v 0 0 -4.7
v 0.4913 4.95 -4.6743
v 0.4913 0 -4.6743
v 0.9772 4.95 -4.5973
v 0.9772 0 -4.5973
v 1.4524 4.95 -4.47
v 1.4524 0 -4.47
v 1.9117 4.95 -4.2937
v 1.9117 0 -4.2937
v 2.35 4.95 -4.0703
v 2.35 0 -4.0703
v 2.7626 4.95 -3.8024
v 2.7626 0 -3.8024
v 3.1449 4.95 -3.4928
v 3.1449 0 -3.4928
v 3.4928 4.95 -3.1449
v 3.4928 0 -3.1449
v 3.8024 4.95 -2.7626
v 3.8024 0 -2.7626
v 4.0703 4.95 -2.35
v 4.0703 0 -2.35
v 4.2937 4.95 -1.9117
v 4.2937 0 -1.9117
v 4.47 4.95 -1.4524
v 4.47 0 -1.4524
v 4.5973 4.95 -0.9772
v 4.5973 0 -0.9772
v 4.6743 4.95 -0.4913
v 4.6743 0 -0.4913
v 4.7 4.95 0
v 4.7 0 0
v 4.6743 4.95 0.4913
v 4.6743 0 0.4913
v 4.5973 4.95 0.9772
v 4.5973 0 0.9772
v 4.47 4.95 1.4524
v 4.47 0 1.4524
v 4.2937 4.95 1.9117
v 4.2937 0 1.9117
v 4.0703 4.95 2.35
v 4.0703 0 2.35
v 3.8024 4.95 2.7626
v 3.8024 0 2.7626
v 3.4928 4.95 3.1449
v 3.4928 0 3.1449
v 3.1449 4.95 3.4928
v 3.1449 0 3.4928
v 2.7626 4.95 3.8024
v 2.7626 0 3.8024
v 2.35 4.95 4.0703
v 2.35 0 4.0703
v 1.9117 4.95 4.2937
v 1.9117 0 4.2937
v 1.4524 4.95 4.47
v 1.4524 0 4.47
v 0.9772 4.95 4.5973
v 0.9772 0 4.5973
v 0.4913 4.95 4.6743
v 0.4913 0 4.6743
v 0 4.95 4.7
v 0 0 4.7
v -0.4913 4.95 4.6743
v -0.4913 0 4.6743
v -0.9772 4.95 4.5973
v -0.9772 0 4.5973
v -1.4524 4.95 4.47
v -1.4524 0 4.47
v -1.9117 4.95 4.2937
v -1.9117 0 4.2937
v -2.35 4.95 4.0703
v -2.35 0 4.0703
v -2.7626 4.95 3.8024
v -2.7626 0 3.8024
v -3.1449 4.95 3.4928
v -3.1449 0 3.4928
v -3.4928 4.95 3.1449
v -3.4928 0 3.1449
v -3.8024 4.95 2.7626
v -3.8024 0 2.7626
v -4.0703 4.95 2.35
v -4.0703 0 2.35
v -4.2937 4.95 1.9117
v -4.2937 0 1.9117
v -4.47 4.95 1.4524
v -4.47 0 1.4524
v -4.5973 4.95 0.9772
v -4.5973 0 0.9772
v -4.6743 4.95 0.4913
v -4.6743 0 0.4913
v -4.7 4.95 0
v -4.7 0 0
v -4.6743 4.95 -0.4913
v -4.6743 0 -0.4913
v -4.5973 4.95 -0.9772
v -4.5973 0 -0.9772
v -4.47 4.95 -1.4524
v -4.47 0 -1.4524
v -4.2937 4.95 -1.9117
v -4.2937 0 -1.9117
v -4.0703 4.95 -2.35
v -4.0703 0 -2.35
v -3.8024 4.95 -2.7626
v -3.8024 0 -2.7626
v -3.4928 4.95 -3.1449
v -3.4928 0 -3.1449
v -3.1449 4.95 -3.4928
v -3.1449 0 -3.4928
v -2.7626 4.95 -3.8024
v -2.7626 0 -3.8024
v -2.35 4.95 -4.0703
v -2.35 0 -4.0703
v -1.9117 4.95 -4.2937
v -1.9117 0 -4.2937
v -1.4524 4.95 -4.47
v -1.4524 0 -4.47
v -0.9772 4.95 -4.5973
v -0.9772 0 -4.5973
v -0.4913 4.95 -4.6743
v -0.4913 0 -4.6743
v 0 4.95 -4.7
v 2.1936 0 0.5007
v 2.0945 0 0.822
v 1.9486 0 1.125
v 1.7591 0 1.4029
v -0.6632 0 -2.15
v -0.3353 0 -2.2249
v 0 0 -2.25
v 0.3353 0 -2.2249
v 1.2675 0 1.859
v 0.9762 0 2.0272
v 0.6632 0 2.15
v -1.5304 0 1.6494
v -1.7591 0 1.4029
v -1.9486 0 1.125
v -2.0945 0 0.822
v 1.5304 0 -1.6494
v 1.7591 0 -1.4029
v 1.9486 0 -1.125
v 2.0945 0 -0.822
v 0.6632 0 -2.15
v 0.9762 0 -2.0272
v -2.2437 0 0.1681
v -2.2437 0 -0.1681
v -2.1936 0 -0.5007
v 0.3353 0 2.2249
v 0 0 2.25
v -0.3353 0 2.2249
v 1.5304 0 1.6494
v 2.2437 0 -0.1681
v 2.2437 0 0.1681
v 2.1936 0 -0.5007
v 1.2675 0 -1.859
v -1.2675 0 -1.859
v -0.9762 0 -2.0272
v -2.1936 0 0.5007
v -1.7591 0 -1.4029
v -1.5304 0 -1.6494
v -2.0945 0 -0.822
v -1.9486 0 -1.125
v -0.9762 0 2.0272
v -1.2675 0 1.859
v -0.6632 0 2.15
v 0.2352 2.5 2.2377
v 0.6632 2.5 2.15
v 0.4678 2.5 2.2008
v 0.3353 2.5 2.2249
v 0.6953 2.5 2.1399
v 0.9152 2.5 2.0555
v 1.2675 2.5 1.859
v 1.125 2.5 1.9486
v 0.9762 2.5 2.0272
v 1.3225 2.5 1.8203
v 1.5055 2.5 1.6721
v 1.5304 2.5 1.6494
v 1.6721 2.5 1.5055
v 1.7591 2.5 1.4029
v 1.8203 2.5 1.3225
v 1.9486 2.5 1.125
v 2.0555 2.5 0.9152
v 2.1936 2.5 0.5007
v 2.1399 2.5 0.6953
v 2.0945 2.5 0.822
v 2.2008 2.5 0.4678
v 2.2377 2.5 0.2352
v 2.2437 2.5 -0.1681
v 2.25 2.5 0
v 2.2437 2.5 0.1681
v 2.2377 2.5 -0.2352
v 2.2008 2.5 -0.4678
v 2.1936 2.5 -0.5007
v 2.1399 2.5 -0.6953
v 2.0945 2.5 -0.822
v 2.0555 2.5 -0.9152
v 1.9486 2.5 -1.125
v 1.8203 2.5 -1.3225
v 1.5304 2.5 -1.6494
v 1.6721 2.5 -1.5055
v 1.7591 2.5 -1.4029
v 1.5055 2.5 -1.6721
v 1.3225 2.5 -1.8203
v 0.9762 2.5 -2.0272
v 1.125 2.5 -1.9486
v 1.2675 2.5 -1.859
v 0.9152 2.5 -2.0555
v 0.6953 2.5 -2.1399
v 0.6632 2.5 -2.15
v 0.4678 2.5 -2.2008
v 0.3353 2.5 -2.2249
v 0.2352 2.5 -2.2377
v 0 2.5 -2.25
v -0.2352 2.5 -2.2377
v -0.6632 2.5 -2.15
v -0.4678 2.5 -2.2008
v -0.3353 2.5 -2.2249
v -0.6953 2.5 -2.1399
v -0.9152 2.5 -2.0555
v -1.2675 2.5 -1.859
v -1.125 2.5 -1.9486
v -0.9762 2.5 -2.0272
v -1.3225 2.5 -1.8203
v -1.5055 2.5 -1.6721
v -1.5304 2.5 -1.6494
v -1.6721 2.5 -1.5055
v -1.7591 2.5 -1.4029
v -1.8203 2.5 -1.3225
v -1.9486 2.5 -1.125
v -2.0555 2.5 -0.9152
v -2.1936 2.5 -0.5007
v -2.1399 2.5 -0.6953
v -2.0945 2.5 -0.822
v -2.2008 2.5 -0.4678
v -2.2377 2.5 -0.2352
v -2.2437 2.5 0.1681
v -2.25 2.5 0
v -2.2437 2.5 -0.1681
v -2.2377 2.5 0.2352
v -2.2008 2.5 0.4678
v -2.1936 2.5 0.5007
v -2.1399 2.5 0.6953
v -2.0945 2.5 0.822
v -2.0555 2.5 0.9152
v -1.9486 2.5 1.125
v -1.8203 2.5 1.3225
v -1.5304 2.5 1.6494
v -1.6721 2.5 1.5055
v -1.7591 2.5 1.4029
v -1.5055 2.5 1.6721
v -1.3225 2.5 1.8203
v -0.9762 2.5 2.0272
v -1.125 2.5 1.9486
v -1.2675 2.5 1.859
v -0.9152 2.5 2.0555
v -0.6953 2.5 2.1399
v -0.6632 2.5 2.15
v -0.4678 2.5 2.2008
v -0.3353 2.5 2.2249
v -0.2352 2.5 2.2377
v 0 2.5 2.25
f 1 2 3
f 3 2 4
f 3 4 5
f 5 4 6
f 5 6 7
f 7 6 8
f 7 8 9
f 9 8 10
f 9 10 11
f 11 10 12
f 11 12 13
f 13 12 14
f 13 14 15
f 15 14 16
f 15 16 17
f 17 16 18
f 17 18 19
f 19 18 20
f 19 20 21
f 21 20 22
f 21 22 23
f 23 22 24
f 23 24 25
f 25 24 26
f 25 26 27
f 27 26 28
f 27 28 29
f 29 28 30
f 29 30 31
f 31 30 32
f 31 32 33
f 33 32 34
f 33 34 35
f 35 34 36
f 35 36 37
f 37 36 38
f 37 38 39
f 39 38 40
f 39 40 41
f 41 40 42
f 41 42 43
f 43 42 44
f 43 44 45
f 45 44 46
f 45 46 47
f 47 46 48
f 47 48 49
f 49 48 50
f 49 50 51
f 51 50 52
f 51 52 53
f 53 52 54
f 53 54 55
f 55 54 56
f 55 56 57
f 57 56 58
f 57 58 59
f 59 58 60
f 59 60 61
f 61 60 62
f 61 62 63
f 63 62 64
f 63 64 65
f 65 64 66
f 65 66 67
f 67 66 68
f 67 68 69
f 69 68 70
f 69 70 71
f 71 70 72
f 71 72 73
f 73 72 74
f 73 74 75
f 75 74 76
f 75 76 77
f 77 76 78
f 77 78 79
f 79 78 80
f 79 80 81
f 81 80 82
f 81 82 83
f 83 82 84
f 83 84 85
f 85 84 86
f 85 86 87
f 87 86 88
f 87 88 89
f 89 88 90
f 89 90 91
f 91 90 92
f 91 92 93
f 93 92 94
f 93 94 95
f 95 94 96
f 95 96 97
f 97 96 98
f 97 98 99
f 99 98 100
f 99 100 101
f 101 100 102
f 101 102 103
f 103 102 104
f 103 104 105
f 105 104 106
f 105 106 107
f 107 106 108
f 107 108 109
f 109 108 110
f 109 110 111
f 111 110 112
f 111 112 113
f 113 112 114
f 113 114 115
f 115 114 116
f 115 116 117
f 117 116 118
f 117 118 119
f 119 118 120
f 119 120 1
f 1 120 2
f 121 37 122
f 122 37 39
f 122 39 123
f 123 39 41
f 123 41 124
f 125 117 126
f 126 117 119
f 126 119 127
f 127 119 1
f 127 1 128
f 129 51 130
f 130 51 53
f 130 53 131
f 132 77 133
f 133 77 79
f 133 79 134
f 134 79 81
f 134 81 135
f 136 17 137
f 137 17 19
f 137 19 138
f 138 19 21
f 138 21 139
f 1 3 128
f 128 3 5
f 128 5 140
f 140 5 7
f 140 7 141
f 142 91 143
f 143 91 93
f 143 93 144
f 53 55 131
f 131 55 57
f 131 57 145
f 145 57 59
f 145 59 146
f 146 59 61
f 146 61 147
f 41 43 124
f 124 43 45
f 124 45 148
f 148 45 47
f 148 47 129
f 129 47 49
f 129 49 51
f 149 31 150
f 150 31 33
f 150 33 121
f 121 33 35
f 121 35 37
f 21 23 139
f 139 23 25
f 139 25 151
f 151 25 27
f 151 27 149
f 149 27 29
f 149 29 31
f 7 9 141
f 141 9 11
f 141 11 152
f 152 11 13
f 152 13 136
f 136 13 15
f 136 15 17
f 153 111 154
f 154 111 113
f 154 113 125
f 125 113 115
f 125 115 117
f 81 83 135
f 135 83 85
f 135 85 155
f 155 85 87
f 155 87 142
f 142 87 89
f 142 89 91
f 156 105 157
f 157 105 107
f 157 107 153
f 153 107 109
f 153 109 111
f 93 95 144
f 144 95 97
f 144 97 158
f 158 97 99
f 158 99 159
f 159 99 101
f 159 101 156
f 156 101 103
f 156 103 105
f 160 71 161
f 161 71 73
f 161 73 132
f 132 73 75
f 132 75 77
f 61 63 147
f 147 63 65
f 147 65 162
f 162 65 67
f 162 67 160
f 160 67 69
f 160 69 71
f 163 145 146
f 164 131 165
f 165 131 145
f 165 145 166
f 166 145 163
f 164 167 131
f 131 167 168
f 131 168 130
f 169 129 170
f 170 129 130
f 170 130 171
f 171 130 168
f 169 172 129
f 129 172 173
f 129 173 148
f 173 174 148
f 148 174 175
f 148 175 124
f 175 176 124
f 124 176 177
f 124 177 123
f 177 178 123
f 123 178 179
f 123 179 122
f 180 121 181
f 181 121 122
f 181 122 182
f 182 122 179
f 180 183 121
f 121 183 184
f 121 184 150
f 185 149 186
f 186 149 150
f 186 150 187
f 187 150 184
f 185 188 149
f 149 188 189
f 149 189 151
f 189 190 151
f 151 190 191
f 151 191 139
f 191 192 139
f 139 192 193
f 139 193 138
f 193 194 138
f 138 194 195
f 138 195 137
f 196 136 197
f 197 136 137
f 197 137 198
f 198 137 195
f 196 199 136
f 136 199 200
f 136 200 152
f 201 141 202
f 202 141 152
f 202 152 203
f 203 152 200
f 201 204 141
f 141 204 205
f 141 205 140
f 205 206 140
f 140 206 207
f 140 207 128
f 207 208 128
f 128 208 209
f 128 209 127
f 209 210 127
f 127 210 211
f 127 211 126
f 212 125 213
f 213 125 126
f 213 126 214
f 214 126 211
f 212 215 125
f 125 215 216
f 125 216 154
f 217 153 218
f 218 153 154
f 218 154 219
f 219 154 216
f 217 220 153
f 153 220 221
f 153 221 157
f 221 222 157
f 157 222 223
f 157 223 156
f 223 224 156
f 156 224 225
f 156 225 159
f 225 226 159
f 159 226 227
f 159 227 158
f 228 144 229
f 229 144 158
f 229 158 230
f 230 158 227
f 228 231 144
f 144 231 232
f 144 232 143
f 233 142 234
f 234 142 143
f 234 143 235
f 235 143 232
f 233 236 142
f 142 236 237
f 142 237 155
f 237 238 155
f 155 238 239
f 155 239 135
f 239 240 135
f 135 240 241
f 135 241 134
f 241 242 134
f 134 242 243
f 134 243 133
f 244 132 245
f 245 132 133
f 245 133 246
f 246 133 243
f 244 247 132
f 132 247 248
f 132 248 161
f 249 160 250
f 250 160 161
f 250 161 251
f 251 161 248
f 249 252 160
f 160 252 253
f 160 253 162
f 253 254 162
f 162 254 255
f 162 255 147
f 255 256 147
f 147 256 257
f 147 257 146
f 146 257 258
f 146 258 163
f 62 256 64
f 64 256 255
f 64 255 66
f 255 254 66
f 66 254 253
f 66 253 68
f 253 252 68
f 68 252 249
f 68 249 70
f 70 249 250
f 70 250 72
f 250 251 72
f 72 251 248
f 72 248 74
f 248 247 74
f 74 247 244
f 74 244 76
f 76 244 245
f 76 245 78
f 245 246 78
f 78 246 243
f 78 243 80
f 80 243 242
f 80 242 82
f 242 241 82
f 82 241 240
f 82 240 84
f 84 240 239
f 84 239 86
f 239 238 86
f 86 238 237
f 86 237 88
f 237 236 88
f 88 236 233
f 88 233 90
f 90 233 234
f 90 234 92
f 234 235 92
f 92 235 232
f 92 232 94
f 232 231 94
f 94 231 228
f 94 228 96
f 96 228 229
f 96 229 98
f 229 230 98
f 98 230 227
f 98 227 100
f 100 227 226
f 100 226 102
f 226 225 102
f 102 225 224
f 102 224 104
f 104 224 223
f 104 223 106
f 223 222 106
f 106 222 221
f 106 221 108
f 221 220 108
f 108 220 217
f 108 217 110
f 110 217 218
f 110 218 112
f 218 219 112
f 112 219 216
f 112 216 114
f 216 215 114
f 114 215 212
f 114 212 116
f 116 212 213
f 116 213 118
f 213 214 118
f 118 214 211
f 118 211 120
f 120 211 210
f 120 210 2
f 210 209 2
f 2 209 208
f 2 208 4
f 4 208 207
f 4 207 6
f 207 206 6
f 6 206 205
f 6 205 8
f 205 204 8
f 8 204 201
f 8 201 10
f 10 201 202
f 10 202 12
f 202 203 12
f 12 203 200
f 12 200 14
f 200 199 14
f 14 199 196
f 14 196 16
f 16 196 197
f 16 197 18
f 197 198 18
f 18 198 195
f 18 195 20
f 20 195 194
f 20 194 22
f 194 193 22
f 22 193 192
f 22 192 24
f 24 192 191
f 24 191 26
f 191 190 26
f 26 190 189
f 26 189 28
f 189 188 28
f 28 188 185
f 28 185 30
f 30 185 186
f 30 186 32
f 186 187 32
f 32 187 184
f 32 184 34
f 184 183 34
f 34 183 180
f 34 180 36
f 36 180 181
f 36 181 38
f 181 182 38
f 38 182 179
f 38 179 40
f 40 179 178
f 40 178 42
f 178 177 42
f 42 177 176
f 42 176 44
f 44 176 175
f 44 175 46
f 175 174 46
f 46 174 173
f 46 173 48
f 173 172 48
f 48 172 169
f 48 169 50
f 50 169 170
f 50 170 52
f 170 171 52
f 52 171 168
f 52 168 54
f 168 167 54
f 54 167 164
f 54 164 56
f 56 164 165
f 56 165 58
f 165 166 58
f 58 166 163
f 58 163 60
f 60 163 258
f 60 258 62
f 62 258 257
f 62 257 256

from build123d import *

# Parameters (mm, degrees)
SKETCH1_R           = 4.7
BOSS_EXTRUDE1_DEPTH = 5
SKETCH2_R           = 2.25
CUT_EXTRUDE1_DEPTH  = 9.317451533
CHAMFER1_SIZE       = 2.5


with BuildPart() as part:
    # Sketch1 → Boss-Extrude1 (new body)
    with BuildSketch(Plane(origin=(0, 0, 0), x_dir=(1, 0, 0), z_dir=(0, 1, 0))):
        with Locations(Location((0, 0, 0), (0, 0, 270))):
            Circle(SKETCH1_R)
    extrude(amount=BOSS_EXTRUDE1_DEPTH)

    # Sketch2 → Cut-Extrude1 (cut, through all)
    with BuildSketch(Plane(origin=(0, 5, 0), x_dir=(1, 0, 0), z_dir=(0, 1, 0))):
        with Locations(Location((0, 0, 0), (0, 0, 270))):
            Circle(SKETCH2_R)
    extrude(amount=-CUT_EXTRUDE1_DEPTH, mode=Mode.SUBTRACT)

    # Chamfer1
    # the kernel refuses this chamfer: 2.5 mm, written as the material it takes off along each edge
    with BuildSketch(Plane(origin=(0, 5, 0), x_dir=(0, 0, 1), z_dir=(-1, 0, 0))) as chamfer1_piece_1:
        Polygon((2.25 + CHAMFER1_SIZE, 0), (2.25, -CHAMFER1_SIZE), (2.25, 0), align=None)
    revolve(axis=Axis((0, 5, 0), (0, 1, 0)), mode=Mode.SUBTRACT)


solid = part.part
